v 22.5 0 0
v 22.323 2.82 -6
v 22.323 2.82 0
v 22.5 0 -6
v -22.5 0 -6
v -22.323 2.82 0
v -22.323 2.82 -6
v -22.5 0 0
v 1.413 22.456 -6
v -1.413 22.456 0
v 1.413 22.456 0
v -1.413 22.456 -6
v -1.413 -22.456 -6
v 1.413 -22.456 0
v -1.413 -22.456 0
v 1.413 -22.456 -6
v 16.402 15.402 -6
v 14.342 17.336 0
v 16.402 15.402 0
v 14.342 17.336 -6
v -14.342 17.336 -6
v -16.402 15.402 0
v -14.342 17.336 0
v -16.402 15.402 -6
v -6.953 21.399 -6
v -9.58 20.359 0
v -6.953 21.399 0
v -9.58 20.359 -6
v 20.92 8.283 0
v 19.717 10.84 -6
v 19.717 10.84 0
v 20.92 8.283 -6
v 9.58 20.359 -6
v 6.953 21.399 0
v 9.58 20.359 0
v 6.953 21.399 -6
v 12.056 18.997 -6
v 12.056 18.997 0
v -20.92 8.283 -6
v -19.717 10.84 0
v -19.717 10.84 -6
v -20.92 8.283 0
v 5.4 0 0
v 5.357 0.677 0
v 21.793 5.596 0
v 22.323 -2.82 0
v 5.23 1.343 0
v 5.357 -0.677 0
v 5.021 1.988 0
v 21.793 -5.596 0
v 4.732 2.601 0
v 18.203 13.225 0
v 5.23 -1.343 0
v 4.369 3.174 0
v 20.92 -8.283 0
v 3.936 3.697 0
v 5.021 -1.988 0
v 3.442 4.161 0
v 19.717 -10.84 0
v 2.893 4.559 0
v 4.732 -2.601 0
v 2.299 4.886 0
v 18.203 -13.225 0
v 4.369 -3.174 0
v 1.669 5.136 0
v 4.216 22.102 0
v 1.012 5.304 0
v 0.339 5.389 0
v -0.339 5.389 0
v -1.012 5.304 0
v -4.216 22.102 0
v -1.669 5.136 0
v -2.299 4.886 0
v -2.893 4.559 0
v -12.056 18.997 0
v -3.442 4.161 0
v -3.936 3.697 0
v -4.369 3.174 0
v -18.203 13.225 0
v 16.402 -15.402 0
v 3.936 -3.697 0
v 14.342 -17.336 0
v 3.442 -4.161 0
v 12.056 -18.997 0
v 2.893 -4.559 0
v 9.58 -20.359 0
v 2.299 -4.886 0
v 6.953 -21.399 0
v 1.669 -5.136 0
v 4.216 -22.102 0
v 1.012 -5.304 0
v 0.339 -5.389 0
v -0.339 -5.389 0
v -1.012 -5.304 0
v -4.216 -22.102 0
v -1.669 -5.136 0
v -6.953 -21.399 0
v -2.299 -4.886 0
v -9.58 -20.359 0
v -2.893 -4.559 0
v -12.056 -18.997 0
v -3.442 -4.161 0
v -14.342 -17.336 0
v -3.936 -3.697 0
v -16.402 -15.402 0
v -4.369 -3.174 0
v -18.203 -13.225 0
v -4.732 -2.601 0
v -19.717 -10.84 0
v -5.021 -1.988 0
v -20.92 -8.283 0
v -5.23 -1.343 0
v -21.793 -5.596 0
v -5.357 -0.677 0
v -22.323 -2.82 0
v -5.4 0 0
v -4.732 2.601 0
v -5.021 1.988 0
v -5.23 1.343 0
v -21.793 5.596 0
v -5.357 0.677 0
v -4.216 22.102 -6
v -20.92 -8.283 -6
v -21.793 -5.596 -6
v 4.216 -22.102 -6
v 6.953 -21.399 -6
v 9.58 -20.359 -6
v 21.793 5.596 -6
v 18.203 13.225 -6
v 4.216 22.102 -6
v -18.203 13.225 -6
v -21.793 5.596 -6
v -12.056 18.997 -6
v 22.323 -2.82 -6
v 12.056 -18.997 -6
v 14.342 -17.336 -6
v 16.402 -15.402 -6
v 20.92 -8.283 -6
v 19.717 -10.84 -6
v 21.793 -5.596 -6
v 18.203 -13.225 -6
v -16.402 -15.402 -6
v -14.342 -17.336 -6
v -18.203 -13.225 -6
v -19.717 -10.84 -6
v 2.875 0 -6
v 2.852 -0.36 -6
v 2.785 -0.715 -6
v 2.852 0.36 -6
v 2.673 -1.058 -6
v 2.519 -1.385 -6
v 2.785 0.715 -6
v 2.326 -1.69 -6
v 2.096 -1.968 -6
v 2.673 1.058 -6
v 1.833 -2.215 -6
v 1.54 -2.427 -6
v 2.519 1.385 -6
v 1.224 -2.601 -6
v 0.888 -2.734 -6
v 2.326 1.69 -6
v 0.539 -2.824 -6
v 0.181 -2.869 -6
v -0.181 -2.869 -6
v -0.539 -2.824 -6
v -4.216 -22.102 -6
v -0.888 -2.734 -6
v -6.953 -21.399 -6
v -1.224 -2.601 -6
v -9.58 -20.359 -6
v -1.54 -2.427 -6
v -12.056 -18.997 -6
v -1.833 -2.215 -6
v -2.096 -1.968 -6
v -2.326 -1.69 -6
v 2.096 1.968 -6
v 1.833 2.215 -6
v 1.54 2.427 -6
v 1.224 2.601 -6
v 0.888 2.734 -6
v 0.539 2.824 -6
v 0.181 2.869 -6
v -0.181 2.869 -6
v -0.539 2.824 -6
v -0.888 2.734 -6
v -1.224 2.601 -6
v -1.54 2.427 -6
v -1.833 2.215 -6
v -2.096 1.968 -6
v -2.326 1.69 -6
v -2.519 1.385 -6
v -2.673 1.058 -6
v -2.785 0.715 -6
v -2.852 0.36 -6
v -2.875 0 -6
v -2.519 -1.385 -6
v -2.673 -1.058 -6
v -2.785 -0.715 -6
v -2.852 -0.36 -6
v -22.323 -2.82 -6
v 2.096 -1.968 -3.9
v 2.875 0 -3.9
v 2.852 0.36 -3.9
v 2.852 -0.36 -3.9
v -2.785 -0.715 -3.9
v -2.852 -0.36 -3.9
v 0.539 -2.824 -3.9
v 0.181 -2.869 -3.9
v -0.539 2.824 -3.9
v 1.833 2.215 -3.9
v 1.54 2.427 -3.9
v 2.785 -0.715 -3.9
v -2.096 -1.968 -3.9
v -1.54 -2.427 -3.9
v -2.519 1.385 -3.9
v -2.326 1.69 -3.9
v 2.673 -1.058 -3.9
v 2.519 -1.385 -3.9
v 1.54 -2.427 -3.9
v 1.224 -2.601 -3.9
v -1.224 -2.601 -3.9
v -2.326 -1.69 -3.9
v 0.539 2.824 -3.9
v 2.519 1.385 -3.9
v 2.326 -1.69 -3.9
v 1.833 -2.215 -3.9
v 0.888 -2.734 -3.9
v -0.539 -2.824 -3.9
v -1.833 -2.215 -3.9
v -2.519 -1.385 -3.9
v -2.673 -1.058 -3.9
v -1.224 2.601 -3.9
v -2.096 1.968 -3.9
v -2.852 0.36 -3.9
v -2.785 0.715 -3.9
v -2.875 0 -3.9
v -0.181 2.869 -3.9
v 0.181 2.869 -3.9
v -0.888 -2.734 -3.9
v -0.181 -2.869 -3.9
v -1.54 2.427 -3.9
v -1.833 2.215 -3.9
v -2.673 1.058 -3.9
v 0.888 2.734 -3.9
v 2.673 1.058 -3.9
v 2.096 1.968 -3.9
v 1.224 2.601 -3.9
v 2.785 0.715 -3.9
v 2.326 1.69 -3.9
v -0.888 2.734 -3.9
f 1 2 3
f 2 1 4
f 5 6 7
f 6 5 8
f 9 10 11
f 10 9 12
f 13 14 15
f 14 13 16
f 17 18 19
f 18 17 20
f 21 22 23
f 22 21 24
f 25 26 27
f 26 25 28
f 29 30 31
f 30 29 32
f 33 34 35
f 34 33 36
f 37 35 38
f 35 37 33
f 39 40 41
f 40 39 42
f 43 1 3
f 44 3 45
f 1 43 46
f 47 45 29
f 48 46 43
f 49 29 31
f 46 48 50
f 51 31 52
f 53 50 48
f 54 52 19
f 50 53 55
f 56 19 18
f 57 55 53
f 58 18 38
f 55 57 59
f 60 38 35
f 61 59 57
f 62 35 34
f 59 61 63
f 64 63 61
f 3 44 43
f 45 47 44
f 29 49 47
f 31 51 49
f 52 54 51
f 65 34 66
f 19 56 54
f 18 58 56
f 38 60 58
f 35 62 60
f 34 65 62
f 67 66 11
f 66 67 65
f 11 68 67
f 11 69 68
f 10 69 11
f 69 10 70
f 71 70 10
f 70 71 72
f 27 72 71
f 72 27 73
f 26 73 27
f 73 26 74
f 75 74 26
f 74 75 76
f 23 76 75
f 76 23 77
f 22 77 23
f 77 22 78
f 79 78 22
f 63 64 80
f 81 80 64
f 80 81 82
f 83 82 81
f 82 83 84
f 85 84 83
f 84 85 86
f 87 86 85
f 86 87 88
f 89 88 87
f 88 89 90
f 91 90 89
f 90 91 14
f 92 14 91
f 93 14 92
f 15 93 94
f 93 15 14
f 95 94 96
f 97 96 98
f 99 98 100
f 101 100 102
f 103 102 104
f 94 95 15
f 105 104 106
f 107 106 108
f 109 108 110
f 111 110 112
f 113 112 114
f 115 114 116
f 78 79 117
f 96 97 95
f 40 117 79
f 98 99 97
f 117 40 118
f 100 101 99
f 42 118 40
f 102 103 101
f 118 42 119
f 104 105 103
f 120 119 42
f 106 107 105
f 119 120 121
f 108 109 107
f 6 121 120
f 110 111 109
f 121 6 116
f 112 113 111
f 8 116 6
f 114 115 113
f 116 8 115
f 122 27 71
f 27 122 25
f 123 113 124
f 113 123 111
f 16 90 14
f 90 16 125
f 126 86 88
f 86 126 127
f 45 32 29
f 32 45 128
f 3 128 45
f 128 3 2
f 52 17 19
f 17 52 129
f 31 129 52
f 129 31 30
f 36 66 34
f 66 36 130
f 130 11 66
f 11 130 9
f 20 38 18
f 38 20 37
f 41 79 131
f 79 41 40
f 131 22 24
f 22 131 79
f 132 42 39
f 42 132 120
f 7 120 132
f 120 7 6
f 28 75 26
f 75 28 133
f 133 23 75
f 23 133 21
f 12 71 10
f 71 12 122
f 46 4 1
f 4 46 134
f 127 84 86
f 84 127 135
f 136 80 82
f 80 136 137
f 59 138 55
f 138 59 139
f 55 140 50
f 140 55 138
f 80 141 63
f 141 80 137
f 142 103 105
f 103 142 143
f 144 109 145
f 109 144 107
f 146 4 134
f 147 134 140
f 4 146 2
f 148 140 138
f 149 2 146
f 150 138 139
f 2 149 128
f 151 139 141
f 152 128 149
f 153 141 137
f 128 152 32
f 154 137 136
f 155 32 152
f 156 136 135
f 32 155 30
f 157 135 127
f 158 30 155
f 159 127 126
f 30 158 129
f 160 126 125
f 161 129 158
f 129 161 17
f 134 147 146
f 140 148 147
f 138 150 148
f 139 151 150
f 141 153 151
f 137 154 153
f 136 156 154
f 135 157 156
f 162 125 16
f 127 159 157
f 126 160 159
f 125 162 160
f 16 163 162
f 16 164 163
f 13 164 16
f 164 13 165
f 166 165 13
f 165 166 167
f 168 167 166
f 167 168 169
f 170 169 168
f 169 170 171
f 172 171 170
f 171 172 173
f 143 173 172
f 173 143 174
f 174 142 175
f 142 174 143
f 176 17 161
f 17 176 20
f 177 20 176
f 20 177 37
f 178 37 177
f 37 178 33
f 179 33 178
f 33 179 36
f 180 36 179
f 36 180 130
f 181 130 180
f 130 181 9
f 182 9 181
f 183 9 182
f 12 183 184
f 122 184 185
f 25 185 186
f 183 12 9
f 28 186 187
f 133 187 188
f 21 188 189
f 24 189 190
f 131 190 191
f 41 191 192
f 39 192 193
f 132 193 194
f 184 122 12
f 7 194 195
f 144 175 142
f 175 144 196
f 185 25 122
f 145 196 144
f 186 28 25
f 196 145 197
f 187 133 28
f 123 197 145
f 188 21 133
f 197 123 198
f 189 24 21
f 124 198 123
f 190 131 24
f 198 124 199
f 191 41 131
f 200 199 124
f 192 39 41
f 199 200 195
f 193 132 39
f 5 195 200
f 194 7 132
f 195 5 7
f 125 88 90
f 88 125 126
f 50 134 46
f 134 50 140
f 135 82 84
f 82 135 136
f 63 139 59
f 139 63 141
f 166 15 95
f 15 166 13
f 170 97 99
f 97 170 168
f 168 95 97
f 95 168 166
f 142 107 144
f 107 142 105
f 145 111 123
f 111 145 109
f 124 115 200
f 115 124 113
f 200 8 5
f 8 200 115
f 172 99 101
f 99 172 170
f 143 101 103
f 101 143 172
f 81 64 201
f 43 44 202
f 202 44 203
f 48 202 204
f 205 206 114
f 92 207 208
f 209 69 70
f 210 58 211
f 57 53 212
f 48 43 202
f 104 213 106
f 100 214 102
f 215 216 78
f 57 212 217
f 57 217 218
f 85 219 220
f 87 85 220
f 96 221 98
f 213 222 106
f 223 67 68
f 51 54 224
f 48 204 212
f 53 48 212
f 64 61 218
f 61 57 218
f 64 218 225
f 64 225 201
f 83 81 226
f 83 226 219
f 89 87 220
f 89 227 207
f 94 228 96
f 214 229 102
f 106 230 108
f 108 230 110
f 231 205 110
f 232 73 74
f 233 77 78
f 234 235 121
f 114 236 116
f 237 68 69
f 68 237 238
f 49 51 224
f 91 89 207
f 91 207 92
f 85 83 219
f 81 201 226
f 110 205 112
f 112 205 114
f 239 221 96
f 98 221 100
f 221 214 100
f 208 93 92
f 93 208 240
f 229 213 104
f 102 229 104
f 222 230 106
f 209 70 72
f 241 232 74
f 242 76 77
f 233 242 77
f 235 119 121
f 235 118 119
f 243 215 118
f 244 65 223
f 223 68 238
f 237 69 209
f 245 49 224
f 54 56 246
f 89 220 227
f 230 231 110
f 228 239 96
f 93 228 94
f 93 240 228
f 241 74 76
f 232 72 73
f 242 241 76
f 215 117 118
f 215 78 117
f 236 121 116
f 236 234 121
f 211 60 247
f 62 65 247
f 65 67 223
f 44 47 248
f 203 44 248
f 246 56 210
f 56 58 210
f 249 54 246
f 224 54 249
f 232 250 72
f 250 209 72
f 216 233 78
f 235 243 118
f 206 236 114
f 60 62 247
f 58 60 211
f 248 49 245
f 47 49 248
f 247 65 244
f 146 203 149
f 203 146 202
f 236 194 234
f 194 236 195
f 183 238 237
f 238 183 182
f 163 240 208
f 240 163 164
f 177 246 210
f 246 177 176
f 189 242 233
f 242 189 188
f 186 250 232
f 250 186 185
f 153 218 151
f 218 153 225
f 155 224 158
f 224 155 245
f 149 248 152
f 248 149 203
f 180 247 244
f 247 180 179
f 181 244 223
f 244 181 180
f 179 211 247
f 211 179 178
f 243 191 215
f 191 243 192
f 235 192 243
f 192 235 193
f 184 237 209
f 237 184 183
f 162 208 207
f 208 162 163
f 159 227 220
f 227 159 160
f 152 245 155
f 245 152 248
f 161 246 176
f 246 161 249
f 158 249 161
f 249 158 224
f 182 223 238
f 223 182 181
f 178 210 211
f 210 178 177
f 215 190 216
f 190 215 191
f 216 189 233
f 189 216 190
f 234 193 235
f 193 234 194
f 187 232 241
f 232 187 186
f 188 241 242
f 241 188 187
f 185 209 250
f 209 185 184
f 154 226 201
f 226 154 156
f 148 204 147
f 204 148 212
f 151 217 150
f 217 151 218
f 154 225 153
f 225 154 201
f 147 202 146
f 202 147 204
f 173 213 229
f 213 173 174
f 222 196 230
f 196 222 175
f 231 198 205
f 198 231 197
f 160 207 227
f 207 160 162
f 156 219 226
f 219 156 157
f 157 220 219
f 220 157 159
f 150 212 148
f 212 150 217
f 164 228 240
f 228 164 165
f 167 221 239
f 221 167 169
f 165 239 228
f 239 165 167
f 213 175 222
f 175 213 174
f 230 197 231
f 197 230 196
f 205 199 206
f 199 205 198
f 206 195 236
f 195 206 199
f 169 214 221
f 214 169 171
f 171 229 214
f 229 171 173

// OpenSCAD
$fn = 50;


difference() {
	union() {
		translate(v = [0, 0, -6.0000000000]) {
			cylinder(h = 6, r = 22.5000000000);
		}
		translate(v = [0, 0, -6.0000000000]) {
			cylinder(h = 6, r = 2.8750000000);
		}
	}
	union() {
		translate(v = [0, 0, 0]) {
			rotate(a = [0, 0, 0]) {
				difference() {
					union() {
						translate(v = [0, 0, -6.0000000000]) {
							cylinder(h = 6, r = 2.6000000000);
						}
						translate(v = [0, 0, -3.9000000000]) {
							cylinder(h = 3.9000000000, r1 = 2.8750000000, r2 = 5.4000000000);
						}
						translate(v = [0, 0, -6.0000000000]) {
							cylinder(h = 6, r = 2.8750000000);
						}
						translate(v = [0, 0, -6.0000000000]) {
							cylinder(h = 6, r = 2.6000000000);
						}
					}
					union();
				}
			}
		}
	}
}
